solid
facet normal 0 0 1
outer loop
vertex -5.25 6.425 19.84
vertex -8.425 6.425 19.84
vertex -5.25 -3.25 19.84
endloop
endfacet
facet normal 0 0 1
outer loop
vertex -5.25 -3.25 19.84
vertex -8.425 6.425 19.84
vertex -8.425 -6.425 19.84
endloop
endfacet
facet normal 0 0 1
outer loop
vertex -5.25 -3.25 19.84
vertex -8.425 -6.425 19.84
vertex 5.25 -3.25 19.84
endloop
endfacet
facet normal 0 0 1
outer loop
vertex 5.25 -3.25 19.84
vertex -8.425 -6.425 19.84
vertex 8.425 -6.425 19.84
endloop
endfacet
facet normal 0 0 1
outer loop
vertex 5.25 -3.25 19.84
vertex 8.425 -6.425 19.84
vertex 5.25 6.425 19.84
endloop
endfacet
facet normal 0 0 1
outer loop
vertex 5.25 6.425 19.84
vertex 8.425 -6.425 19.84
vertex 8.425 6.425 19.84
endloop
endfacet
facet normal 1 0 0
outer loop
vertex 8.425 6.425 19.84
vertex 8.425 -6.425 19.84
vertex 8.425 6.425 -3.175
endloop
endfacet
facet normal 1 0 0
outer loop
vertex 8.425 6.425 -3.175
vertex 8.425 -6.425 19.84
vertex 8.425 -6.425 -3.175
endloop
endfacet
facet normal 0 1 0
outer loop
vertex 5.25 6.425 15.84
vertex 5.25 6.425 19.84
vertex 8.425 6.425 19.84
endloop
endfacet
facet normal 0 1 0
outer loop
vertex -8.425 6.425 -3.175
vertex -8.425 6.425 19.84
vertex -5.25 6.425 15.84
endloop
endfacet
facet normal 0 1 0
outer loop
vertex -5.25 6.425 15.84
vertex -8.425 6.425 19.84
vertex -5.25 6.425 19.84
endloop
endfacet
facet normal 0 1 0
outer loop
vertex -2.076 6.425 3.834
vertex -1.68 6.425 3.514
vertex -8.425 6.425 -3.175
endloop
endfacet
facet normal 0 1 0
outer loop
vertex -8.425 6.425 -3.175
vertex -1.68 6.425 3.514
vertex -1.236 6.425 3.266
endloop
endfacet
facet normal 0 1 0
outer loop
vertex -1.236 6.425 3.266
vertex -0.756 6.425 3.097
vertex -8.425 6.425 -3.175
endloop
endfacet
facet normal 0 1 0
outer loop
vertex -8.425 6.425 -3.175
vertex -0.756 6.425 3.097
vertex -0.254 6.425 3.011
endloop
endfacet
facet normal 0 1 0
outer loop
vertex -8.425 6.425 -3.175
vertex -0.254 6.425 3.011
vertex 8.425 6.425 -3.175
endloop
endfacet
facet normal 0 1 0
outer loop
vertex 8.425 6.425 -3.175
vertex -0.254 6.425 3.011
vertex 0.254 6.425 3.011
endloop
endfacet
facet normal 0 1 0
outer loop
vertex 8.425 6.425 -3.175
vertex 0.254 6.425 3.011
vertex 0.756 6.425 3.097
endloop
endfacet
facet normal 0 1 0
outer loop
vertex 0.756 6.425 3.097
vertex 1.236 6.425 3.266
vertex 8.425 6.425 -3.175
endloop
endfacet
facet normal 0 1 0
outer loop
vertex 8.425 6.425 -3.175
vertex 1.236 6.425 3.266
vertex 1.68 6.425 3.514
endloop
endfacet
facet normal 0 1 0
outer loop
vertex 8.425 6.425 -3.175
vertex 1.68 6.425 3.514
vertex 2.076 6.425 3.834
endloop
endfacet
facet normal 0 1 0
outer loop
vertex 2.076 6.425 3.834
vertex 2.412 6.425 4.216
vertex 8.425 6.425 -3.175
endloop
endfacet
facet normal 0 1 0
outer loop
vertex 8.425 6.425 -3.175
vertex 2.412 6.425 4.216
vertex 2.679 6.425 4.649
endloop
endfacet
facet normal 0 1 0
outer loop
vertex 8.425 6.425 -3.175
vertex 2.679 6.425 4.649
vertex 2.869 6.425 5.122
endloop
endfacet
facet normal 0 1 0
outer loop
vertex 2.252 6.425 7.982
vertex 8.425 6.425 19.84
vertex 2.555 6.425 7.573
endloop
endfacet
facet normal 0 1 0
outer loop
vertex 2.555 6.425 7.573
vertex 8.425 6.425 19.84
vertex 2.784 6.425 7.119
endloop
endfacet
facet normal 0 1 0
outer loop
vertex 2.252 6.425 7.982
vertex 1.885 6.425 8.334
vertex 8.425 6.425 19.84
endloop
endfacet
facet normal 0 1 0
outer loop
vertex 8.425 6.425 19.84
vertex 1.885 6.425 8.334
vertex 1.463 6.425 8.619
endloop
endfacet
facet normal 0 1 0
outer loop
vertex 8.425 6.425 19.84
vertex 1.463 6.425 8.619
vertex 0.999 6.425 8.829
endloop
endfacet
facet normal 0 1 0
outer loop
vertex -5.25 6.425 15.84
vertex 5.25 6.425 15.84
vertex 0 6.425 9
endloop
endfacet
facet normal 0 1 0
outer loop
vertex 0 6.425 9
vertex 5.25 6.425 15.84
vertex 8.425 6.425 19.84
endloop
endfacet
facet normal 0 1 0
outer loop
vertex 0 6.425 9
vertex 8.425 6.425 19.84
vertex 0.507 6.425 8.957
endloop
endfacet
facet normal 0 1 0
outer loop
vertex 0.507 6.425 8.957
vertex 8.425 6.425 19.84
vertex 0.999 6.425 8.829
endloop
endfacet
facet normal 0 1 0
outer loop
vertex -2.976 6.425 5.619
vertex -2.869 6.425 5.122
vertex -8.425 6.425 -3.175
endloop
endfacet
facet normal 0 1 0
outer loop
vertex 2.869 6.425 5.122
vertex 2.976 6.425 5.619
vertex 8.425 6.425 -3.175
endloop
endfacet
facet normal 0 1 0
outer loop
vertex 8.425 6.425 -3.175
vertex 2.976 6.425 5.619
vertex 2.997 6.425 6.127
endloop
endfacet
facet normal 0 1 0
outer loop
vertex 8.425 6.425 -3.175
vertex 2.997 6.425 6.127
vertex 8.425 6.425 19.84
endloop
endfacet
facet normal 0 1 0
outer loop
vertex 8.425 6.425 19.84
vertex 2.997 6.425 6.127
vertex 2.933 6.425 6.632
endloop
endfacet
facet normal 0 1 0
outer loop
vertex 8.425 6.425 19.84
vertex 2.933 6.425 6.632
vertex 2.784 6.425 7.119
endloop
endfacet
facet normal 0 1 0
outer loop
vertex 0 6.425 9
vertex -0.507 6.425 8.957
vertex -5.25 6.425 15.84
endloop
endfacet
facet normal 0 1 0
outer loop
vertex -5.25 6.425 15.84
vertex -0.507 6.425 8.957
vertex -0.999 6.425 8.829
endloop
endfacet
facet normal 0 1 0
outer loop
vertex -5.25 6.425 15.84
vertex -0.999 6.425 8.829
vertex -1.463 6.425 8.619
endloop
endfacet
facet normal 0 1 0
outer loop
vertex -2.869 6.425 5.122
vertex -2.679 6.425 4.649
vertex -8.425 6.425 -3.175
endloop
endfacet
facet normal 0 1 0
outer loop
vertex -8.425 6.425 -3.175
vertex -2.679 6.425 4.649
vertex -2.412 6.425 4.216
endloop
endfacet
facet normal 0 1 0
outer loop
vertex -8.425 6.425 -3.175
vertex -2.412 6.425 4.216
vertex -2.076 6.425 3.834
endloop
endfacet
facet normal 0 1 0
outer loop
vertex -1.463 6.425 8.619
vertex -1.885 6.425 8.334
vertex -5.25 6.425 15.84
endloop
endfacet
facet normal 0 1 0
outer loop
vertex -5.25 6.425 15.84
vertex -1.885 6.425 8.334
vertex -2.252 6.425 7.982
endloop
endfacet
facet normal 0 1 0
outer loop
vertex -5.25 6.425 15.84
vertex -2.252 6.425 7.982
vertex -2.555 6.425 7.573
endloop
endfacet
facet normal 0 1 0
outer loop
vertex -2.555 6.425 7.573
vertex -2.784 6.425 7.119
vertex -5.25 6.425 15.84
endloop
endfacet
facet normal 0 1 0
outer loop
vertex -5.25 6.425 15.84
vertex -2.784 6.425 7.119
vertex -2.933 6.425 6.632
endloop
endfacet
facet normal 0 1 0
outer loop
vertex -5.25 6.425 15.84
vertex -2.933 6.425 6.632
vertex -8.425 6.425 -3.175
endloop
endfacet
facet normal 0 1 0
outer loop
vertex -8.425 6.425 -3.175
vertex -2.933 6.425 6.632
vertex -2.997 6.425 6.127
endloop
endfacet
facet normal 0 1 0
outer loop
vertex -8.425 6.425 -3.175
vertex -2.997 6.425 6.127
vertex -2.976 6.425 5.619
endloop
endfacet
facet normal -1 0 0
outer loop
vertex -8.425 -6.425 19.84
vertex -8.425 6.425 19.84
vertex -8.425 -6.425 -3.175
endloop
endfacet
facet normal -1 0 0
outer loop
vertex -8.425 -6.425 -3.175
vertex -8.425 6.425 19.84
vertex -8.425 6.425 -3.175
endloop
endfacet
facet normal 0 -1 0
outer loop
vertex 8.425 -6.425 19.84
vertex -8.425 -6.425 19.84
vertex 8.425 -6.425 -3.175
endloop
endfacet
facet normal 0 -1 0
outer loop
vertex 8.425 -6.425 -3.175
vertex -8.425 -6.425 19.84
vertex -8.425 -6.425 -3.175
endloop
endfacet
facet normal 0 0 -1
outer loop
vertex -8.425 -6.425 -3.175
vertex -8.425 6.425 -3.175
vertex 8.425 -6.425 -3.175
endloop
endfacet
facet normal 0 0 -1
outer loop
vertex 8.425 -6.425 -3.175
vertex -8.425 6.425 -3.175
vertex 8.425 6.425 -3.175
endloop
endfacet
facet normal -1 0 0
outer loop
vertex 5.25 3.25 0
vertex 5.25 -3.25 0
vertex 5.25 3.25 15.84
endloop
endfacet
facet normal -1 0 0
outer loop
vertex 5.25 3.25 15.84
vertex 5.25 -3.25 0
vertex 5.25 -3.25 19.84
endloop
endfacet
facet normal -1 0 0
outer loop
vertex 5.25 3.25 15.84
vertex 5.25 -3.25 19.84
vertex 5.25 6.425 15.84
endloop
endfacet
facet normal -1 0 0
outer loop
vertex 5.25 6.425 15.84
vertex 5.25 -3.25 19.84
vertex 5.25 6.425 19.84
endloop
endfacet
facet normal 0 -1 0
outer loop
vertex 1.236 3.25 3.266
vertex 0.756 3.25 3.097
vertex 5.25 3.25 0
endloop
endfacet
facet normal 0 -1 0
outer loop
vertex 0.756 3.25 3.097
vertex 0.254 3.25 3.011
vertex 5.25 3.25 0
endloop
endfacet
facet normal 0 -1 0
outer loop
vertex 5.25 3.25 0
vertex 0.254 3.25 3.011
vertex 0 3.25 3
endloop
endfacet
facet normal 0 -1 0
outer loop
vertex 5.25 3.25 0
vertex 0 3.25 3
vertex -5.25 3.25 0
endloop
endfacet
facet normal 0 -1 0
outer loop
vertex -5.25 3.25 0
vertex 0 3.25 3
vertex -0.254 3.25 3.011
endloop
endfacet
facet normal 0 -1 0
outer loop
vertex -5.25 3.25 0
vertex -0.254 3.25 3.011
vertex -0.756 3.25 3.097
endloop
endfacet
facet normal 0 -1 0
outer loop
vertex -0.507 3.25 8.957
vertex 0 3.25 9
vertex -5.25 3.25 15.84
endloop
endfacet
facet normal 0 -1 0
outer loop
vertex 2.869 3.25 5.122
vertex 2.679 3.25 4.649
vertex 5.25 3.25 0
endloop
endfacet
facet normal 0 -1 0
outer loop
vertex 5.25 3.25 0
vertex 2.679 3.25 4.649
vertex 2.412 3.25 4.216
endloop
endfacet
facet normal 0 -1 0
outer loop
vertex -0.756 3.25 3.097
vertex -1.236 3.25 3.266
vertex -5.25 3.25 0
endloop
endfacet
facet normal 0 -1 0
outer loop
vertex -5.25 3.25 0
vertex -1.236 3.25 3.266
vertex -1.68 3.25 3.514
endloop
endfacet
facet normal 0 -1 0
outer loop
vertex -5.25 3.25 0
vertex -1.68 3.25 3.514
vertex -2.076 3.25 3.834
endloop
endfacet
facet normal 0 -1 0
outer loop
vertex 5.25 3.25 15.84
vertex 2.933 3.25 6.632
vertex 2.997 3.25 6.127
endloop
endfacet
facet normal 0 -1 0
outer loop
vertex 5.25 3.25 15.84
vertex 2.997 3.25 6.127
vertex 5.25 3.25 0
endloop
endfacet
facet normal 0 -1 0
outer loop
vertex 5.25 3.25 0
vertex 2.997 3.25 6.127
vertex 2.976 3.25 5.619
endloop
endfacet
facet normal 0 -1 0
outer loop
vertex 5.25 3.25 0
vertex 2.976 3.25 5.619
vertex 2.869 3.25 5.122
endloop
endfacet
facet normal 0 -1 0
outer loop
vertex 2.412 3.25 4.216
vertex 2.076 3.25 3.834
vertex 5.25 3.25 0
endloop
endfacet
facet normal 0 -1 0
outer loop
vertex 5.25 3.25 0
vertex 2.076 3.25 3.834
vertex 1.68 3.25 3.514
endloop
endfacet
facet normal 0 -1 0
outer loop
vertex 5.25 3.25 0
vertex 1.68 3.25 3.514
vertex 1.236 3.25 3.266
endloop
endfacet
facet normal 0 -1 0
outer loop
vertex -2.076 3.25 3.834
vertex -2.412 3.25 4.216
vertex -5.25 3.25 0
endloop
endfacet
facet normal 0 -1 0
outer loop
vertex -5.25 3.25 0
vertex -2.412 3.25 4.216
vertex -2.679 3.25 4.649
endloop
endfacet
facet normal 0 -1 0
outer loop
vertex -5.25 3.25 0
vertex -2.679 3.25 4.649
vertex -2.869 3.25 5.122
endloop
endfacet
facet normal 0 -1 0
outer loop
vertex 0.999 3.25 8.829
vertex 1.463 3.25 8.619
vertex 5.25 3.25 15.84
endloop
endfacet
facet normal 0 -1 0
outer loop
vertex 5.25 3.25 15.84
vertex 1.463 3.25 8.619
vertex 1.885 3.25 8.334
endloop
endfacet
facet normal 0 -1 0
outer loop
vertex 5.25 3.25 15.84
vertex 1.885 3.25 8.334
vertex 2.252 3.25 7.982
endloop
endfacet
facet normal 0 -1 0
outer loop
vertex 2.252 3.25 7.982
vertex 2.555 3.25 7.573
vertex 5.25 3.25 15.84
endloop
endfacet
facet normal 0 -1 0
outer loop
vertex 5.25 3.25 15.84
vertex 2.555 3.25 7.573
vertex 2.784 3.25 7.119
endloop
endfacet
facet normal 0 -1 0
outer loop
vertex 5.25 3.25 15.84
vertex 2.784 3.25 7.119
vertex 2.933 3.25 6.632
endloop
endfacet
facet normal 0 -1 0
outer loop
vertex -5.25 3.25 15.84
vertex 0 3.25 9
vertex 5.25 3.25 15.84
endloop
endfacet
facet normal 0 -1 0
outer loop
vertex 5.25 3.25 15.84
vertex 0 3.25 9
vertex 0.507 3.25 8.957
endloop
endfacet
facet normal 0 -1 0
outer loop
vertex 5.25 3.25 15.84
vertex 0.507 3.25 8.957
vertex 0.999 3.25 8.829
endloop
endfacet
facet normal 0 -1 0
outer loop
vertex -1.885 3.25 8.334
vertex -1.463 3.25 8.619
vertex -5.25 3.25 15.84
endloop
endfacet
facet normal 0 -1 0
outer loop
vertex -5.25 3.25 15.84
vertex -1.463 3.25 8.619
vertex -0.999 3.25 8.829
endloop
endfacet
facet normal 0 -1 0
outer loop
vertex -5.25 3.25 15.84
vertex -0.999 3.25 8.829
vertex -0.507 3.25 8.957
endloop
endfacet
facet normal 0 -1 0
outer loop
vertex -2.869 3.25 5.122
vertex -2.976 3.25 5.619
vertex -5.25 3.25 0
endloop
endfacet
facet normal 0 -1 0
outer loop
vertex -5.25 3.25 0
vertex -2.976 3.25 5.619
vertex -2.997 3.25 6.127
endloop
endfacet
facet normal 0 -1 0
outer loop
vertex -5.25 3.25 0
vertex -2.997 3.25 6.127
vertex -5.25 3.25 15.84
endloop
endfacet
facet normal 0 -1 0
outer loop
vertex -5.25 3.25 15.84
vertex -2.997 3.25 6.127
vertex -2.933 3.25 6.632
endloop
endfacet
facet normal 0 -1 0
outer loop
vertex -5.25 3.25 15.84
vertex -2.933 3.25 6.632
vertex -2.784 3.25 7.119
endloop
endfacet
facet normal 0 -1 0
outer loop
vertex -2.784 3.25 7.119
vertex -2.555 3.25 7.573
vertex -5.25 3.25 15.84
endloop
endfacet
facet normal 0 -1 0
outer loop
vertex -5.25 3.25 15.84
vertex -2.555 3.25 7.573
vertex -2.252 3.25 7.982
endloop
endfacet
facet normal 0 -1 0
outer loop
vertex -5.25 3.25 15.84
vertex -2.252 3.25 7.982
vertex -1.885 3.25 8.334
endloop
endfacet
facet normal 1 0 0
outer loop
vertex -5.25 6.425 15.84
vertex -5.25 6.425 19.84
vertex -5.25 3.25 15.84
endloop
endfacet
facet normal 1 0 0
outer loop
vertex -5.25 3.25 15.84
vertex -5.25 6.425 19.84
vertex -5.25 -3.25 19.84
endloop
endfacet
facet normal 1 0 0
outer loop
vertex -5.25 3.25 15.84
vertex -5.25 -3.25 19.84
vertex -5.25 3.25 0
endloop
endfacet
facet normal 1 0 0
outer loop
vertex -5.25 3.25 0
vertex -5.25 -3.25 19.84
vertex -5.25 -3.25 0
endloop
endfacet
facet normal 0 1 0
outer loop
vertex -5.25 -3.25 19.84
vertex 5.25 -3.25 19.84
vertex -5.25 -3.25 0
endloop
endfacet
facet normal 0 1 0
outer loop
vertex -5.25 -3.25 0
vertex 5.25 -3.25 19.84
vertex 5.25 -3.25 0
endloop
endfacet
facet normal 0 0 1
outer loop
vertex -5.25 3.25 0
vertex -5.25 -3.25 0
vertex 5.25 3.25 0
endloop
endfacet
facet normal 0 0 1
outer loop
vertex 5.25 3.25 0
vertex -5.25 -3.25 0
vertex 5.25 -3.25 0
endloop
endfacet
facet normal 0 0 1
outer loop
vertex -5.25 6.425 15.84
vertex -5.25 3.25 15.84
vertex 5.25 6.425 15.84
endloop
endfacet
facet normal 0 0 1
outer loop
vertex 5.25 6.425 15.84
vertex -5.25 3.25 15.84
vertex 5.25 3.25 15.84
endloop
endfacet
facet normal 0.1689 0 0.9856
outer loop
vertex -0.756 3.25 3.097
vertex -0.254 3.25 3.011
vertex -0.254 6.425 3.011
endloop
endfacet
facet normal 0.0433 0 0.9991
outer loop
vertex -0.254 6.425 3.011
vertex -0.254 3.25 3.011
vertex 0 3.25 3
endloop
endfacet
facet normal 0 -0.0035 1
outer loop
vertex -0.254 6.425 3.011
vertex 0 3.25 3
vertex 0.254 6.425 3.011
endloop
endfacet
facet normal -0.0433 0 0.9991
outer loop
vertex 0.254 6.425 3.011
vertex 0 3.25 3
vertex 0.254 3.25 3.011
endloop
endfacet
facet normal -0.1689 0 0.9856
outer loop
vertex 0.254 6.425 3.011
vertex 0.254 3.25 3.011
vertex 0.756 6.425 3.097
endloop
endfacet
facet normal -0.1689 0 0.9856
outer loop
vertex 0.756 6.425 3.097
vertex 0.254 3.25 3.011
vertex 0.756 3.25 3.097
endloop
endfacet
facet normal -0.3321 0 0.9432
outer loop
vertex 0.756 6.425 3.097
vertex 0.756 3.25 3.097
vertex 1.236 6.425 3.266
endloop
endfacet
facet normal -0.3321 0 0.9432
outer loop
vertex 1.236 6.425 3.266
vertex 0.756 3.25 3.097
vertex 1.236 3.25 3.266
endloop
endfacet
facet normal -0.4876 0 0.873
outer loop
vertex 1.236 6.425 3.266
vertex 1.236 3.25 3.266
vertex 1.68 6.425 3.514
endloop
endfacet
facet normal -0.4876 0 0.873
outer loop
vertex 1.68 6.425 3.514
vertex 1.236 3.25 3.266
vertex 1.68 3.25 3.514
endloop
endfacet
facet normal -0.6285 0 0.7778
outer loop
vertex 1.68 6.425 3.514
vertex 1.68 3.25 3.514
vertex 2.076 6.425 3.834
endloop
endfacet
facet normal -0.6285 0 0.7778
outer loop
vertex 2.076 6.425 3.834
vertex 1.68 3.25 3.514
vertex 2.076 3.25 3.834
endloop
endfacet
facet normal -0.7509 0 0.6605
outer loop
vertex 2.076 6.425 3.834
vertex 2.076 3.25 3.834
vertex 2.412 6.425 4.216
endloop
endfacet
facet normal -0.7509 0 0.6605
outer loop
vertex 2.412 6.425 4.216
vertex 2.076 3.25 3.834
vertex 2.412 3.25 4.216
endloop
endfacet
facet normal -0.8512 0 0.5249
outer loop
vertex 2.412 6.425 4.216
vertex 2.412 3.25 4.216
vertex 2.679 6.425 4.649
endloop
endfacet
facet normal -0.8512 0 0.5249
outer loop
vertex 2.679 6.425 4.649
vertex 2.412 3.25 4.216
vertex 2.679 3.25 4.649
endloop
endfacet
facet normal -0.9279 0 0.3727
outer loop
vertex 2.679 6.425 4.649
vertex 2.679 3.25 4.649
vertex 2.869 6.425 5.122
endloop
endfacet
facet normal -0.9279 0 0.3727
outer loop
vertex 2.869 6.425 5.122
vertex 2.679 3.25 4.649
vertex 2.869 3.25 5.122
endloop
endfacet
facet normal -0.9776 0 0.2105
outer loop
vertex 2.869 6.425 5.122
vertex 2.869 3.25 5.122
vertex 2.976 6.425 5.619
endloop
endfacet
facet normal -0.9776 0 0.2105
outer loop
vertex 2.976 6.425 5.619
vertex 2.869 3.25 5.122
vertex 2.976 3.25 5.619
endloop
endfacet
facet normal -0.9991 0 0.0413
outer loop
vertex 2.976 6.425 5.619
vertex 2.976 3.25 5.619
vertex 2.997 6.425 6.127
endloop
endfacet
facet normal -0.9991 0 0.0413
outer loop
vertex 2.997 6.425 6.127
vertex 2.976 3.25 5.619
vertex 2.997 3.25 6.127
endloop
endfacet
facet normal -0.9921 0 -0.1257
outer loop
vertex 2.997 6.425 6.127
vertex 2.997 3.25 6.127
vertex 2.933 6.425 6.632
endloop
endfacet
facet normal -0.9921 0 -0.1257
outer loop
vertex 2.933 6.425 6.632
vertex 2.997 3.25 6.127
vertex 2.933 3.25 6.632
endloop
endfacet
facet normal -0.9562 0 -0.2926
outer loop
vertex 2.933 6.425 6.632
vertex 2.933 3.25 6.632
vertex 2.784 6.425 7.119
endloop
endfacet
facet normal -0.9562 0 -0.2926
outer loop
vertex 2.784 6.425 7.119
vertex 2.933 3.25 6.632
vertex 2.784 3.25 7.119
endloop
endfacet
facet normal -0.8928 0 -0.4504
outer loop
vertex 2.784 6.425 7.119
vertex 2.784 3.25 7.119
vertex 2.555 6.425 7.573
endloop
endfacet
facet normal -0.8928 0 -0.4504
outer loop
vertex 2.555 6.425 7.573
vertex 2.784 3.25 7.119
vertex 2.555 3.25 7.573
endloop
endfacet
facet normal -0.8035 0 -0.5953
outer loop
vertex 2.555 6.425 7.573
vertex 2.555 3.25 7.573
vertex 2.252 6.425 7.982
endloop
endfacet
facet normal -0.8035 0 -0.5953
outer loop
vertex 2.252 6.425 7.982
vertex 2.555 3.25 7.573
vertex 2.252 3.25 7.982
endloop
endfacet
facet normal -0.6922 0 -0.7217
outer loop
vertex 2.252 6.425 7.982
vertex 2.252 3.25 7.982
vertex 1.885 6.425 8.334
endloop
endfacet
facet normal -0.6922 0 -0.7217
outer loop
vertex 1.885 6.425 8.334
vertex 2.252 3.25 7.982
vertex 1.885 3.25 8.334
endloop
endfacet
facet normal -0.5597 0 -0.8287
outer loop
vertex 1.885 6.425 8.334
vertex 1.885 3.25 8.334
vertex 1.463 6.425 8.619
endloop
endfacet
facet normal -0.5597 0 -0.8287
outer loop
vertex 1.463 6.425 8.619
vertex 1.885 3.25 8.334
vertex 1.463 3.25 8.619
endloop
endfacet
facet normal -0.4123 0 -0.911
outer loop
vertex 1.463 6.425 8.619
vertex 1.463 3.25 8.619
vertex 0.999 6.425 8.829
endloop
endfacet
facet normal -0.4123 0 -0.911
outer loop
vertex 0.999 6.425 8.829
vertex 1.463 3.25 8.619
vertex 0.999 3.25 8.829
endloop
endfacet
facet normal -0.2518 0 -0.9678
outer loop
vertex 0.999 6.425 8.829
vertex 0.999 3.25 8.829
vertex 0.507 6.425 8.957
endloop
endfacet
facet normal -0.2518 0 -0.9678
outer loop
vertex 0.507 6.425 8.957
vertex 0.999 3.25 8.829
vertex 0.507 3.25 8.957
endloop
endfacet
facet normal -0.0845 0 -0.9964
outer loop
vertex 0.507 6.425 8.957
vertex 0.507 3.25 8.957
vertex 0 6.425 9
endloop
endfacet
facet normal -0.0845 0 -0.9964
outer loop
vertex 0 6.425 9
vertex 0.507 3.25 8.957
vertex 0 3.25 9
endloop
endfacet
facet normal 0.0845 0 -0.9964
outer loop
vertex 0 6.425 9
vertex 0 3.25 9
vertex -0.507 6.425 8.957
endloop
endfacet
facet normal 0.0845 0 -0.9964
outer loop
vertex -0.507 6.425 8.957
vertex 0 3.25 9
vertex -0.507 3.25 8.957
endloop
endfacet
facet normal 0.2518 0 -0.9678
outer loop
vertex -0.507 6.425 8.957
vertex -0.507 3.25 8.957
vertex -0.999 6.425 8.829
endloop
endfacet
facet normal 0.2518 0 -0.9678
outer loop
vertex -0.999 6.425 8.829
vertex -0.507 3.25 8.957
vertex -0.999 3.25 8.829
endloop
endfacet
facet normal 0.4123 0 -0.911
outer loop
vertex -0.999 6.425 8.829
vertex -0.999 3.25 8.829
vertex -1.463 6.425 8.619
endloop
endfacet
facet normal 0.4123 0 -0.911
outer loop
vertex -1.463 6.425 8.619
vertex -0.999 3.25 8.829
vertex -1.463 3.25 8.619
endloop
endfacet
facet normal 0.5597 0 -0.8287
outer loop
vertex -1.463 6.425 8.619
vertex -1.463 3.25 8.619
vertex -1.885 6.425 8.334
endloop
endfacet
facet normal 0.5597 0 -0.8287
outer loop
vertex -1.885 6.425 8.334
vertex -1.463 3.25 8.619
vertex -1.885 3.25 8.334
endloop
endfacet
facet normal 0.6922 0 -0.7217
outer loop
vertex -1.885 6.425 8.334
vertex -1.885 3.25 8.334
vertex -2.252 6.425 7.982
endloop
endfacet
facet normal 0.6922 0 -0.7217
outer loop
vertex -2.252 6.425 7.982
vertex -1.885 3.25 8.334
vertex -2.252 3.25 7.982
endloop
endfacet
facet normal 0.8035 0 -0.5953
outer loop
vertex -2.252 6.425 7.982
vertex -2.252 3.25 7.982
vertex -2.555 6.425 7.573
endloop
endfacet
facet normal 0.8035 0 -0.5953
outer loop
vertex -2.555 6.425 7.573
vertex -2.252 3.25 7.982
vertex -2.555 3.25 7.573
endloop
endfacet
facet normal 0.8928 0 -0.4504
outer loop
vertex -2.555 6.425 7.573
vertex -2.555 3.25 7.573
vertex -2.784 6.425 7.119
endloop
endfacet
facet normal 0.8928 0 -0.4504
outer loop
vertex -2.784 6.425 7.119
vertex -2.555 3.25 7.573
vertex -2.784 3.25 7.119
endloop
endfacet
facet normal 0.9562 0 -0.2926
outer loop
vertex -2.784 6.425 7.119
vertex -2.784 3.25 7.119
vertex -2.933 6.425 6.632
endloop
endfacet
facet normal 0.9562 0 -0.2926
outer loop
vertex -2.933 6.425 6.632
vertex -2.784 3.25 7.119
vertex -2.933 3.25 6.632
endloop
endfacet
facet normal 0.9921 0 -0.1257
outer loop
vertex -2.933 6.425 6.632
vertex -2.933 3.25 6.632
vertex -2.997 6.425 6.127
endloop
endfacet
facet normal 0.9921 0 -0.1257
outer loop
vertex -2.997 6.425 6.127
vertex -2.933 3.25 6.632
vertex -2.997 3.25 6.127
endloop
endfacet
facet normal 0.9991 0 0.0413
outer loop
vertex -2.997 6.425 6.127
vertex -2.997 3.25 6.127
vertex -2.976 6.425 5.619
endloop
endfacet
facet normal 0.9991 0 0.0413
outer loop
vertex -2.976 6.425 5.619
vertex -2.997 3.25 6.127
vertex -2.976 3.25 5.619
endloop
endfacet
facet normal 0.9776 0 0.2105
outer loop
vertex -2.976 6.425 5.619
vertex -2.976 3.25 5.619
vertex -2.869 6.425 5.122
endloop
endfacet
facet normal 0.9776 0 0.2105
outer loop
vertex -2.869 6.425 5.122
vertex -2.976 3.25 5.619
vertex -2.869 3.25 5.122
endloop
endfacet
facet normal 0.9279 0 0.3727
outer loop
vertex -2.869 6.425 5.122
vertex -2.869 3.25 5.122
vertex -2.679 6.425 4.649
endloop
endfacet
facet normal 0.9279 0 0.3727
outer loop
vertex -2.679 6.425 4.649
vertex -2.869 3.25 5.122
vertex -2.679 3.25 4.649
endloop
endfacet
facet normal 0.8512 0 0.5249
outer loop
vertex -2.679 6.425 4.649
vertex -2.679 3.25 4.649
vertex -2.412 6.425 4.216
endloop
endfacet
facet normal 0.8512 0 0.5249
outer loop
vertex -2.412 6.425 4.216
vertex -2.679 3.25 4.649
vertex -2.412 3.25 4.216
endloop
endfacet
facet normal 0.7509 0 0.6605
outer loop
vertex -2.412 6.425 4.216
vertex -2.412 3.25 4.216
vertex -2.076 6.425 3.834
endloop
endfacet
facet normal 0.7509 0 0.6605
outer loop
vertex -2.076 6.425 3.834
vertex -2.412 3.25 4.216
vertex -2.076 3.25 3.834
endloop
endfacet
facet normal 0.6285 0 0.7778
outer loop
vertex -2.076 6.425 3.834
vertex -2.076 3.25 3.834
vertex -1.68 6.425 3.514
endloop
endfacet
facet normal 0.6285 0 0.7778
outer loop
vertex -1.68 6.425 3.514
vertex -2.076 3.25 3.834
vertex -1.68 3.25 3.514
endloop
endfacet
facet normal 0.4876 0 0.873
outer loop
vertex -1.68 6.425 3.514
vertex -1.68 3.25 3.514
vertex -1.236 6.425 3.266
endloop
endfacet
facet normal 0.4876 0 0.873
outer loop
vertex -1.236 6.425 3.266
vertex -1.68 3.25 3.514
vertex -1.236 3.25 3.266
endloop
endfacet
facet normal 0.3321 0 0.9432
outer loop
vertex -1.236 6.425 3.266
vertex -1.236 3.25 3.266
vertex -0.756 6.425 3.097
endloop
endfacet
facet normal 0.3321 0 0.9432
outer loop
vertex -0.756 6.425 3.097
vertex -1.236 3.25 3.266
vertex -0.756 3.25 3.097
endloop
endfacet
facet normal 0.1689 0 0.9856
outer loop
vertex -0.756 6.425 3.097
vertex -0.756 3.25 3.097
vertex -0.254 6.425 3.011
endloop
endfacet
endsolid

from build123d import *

# Parameters (mm, degrees)
SKETCH1_W           = 10.5
SKETCH1_H           = 6.5
BOSS_EXTRUDE1_DEPTH = 19.84
SHELL1_T            = 3.175
CUT_EXTRUDE1_REACH  = 27.094
SKETCH2_R           = 3
SKETCH2_W           = 10.5
SKETCH2_H           = 4


with BuildPart() as part:
    # Sketch1 → Boss-Extrude1 (new body)
    with BuildSketch(Plane.XY):
        Rectangle(SKETCH1_W, SKETCH1_H)
    extrude(amount=BOSS_EXTRUDE1_DEPTH)

    # Shell1
    shell1_openings = [part.faces().sort_by_distance(p)[0] for p in [
        (0, 0, 19.84),
    ]]
    offset(amount=SHELL1_T, openings=shell1_openings, kind=Kind.INTERSECTION)

    # Sketch2 → Cut-Extrude1 (cut, up to next)
    with BuildSketch(Plane(origin=(0, 6.425, 0), x_dir=(1, 0, 0), z_dir=(0, 1, 0)), mode=Mode.PRIVATE) as cut_extrude1_sk1:
        with Locations(Location((0, -6, 0), (0, 0, 270))):
            Circle(SKETCH2_R)
    cut_extrude1_tool1 = extrude(cut_extrude1_sk1.sketch, amount=-CUT_EXTRUDE1_REACH, mode=Mode.PRIVATE) & part.part
    # Sketch2 → Cut-Extrude1 (cut, up to next)
    with BuildSketch(Plane(origin=(0, 6.425, 0), x_dir=(1, 0, 0), z_dir=(0, 1, 0)), mode=Mode.PRIVATE) as cut_extrude1_sk2:
        with Locations((0, -17.84)):
            Rectangle(SKETCH2_W, SKETCH2_H)
    cut_extrude1_tool2 = extrude(cut_extrude1_sk2.sketch, amount=-CUT_EXTRUDE1_REACH, mode=Mode.PRIVATE) & part.part
    add(cut_extrude1_tool1.solids().sort_by_distance((0, 6.425, 6))[0], mode=Mode.SUBTRACT)
    add(cut_extrude1_tool2.solids().sort_by_distance((0, 6.425, 17.84))[0], mode=Mode.SUBTRACT)


solid = part.part
